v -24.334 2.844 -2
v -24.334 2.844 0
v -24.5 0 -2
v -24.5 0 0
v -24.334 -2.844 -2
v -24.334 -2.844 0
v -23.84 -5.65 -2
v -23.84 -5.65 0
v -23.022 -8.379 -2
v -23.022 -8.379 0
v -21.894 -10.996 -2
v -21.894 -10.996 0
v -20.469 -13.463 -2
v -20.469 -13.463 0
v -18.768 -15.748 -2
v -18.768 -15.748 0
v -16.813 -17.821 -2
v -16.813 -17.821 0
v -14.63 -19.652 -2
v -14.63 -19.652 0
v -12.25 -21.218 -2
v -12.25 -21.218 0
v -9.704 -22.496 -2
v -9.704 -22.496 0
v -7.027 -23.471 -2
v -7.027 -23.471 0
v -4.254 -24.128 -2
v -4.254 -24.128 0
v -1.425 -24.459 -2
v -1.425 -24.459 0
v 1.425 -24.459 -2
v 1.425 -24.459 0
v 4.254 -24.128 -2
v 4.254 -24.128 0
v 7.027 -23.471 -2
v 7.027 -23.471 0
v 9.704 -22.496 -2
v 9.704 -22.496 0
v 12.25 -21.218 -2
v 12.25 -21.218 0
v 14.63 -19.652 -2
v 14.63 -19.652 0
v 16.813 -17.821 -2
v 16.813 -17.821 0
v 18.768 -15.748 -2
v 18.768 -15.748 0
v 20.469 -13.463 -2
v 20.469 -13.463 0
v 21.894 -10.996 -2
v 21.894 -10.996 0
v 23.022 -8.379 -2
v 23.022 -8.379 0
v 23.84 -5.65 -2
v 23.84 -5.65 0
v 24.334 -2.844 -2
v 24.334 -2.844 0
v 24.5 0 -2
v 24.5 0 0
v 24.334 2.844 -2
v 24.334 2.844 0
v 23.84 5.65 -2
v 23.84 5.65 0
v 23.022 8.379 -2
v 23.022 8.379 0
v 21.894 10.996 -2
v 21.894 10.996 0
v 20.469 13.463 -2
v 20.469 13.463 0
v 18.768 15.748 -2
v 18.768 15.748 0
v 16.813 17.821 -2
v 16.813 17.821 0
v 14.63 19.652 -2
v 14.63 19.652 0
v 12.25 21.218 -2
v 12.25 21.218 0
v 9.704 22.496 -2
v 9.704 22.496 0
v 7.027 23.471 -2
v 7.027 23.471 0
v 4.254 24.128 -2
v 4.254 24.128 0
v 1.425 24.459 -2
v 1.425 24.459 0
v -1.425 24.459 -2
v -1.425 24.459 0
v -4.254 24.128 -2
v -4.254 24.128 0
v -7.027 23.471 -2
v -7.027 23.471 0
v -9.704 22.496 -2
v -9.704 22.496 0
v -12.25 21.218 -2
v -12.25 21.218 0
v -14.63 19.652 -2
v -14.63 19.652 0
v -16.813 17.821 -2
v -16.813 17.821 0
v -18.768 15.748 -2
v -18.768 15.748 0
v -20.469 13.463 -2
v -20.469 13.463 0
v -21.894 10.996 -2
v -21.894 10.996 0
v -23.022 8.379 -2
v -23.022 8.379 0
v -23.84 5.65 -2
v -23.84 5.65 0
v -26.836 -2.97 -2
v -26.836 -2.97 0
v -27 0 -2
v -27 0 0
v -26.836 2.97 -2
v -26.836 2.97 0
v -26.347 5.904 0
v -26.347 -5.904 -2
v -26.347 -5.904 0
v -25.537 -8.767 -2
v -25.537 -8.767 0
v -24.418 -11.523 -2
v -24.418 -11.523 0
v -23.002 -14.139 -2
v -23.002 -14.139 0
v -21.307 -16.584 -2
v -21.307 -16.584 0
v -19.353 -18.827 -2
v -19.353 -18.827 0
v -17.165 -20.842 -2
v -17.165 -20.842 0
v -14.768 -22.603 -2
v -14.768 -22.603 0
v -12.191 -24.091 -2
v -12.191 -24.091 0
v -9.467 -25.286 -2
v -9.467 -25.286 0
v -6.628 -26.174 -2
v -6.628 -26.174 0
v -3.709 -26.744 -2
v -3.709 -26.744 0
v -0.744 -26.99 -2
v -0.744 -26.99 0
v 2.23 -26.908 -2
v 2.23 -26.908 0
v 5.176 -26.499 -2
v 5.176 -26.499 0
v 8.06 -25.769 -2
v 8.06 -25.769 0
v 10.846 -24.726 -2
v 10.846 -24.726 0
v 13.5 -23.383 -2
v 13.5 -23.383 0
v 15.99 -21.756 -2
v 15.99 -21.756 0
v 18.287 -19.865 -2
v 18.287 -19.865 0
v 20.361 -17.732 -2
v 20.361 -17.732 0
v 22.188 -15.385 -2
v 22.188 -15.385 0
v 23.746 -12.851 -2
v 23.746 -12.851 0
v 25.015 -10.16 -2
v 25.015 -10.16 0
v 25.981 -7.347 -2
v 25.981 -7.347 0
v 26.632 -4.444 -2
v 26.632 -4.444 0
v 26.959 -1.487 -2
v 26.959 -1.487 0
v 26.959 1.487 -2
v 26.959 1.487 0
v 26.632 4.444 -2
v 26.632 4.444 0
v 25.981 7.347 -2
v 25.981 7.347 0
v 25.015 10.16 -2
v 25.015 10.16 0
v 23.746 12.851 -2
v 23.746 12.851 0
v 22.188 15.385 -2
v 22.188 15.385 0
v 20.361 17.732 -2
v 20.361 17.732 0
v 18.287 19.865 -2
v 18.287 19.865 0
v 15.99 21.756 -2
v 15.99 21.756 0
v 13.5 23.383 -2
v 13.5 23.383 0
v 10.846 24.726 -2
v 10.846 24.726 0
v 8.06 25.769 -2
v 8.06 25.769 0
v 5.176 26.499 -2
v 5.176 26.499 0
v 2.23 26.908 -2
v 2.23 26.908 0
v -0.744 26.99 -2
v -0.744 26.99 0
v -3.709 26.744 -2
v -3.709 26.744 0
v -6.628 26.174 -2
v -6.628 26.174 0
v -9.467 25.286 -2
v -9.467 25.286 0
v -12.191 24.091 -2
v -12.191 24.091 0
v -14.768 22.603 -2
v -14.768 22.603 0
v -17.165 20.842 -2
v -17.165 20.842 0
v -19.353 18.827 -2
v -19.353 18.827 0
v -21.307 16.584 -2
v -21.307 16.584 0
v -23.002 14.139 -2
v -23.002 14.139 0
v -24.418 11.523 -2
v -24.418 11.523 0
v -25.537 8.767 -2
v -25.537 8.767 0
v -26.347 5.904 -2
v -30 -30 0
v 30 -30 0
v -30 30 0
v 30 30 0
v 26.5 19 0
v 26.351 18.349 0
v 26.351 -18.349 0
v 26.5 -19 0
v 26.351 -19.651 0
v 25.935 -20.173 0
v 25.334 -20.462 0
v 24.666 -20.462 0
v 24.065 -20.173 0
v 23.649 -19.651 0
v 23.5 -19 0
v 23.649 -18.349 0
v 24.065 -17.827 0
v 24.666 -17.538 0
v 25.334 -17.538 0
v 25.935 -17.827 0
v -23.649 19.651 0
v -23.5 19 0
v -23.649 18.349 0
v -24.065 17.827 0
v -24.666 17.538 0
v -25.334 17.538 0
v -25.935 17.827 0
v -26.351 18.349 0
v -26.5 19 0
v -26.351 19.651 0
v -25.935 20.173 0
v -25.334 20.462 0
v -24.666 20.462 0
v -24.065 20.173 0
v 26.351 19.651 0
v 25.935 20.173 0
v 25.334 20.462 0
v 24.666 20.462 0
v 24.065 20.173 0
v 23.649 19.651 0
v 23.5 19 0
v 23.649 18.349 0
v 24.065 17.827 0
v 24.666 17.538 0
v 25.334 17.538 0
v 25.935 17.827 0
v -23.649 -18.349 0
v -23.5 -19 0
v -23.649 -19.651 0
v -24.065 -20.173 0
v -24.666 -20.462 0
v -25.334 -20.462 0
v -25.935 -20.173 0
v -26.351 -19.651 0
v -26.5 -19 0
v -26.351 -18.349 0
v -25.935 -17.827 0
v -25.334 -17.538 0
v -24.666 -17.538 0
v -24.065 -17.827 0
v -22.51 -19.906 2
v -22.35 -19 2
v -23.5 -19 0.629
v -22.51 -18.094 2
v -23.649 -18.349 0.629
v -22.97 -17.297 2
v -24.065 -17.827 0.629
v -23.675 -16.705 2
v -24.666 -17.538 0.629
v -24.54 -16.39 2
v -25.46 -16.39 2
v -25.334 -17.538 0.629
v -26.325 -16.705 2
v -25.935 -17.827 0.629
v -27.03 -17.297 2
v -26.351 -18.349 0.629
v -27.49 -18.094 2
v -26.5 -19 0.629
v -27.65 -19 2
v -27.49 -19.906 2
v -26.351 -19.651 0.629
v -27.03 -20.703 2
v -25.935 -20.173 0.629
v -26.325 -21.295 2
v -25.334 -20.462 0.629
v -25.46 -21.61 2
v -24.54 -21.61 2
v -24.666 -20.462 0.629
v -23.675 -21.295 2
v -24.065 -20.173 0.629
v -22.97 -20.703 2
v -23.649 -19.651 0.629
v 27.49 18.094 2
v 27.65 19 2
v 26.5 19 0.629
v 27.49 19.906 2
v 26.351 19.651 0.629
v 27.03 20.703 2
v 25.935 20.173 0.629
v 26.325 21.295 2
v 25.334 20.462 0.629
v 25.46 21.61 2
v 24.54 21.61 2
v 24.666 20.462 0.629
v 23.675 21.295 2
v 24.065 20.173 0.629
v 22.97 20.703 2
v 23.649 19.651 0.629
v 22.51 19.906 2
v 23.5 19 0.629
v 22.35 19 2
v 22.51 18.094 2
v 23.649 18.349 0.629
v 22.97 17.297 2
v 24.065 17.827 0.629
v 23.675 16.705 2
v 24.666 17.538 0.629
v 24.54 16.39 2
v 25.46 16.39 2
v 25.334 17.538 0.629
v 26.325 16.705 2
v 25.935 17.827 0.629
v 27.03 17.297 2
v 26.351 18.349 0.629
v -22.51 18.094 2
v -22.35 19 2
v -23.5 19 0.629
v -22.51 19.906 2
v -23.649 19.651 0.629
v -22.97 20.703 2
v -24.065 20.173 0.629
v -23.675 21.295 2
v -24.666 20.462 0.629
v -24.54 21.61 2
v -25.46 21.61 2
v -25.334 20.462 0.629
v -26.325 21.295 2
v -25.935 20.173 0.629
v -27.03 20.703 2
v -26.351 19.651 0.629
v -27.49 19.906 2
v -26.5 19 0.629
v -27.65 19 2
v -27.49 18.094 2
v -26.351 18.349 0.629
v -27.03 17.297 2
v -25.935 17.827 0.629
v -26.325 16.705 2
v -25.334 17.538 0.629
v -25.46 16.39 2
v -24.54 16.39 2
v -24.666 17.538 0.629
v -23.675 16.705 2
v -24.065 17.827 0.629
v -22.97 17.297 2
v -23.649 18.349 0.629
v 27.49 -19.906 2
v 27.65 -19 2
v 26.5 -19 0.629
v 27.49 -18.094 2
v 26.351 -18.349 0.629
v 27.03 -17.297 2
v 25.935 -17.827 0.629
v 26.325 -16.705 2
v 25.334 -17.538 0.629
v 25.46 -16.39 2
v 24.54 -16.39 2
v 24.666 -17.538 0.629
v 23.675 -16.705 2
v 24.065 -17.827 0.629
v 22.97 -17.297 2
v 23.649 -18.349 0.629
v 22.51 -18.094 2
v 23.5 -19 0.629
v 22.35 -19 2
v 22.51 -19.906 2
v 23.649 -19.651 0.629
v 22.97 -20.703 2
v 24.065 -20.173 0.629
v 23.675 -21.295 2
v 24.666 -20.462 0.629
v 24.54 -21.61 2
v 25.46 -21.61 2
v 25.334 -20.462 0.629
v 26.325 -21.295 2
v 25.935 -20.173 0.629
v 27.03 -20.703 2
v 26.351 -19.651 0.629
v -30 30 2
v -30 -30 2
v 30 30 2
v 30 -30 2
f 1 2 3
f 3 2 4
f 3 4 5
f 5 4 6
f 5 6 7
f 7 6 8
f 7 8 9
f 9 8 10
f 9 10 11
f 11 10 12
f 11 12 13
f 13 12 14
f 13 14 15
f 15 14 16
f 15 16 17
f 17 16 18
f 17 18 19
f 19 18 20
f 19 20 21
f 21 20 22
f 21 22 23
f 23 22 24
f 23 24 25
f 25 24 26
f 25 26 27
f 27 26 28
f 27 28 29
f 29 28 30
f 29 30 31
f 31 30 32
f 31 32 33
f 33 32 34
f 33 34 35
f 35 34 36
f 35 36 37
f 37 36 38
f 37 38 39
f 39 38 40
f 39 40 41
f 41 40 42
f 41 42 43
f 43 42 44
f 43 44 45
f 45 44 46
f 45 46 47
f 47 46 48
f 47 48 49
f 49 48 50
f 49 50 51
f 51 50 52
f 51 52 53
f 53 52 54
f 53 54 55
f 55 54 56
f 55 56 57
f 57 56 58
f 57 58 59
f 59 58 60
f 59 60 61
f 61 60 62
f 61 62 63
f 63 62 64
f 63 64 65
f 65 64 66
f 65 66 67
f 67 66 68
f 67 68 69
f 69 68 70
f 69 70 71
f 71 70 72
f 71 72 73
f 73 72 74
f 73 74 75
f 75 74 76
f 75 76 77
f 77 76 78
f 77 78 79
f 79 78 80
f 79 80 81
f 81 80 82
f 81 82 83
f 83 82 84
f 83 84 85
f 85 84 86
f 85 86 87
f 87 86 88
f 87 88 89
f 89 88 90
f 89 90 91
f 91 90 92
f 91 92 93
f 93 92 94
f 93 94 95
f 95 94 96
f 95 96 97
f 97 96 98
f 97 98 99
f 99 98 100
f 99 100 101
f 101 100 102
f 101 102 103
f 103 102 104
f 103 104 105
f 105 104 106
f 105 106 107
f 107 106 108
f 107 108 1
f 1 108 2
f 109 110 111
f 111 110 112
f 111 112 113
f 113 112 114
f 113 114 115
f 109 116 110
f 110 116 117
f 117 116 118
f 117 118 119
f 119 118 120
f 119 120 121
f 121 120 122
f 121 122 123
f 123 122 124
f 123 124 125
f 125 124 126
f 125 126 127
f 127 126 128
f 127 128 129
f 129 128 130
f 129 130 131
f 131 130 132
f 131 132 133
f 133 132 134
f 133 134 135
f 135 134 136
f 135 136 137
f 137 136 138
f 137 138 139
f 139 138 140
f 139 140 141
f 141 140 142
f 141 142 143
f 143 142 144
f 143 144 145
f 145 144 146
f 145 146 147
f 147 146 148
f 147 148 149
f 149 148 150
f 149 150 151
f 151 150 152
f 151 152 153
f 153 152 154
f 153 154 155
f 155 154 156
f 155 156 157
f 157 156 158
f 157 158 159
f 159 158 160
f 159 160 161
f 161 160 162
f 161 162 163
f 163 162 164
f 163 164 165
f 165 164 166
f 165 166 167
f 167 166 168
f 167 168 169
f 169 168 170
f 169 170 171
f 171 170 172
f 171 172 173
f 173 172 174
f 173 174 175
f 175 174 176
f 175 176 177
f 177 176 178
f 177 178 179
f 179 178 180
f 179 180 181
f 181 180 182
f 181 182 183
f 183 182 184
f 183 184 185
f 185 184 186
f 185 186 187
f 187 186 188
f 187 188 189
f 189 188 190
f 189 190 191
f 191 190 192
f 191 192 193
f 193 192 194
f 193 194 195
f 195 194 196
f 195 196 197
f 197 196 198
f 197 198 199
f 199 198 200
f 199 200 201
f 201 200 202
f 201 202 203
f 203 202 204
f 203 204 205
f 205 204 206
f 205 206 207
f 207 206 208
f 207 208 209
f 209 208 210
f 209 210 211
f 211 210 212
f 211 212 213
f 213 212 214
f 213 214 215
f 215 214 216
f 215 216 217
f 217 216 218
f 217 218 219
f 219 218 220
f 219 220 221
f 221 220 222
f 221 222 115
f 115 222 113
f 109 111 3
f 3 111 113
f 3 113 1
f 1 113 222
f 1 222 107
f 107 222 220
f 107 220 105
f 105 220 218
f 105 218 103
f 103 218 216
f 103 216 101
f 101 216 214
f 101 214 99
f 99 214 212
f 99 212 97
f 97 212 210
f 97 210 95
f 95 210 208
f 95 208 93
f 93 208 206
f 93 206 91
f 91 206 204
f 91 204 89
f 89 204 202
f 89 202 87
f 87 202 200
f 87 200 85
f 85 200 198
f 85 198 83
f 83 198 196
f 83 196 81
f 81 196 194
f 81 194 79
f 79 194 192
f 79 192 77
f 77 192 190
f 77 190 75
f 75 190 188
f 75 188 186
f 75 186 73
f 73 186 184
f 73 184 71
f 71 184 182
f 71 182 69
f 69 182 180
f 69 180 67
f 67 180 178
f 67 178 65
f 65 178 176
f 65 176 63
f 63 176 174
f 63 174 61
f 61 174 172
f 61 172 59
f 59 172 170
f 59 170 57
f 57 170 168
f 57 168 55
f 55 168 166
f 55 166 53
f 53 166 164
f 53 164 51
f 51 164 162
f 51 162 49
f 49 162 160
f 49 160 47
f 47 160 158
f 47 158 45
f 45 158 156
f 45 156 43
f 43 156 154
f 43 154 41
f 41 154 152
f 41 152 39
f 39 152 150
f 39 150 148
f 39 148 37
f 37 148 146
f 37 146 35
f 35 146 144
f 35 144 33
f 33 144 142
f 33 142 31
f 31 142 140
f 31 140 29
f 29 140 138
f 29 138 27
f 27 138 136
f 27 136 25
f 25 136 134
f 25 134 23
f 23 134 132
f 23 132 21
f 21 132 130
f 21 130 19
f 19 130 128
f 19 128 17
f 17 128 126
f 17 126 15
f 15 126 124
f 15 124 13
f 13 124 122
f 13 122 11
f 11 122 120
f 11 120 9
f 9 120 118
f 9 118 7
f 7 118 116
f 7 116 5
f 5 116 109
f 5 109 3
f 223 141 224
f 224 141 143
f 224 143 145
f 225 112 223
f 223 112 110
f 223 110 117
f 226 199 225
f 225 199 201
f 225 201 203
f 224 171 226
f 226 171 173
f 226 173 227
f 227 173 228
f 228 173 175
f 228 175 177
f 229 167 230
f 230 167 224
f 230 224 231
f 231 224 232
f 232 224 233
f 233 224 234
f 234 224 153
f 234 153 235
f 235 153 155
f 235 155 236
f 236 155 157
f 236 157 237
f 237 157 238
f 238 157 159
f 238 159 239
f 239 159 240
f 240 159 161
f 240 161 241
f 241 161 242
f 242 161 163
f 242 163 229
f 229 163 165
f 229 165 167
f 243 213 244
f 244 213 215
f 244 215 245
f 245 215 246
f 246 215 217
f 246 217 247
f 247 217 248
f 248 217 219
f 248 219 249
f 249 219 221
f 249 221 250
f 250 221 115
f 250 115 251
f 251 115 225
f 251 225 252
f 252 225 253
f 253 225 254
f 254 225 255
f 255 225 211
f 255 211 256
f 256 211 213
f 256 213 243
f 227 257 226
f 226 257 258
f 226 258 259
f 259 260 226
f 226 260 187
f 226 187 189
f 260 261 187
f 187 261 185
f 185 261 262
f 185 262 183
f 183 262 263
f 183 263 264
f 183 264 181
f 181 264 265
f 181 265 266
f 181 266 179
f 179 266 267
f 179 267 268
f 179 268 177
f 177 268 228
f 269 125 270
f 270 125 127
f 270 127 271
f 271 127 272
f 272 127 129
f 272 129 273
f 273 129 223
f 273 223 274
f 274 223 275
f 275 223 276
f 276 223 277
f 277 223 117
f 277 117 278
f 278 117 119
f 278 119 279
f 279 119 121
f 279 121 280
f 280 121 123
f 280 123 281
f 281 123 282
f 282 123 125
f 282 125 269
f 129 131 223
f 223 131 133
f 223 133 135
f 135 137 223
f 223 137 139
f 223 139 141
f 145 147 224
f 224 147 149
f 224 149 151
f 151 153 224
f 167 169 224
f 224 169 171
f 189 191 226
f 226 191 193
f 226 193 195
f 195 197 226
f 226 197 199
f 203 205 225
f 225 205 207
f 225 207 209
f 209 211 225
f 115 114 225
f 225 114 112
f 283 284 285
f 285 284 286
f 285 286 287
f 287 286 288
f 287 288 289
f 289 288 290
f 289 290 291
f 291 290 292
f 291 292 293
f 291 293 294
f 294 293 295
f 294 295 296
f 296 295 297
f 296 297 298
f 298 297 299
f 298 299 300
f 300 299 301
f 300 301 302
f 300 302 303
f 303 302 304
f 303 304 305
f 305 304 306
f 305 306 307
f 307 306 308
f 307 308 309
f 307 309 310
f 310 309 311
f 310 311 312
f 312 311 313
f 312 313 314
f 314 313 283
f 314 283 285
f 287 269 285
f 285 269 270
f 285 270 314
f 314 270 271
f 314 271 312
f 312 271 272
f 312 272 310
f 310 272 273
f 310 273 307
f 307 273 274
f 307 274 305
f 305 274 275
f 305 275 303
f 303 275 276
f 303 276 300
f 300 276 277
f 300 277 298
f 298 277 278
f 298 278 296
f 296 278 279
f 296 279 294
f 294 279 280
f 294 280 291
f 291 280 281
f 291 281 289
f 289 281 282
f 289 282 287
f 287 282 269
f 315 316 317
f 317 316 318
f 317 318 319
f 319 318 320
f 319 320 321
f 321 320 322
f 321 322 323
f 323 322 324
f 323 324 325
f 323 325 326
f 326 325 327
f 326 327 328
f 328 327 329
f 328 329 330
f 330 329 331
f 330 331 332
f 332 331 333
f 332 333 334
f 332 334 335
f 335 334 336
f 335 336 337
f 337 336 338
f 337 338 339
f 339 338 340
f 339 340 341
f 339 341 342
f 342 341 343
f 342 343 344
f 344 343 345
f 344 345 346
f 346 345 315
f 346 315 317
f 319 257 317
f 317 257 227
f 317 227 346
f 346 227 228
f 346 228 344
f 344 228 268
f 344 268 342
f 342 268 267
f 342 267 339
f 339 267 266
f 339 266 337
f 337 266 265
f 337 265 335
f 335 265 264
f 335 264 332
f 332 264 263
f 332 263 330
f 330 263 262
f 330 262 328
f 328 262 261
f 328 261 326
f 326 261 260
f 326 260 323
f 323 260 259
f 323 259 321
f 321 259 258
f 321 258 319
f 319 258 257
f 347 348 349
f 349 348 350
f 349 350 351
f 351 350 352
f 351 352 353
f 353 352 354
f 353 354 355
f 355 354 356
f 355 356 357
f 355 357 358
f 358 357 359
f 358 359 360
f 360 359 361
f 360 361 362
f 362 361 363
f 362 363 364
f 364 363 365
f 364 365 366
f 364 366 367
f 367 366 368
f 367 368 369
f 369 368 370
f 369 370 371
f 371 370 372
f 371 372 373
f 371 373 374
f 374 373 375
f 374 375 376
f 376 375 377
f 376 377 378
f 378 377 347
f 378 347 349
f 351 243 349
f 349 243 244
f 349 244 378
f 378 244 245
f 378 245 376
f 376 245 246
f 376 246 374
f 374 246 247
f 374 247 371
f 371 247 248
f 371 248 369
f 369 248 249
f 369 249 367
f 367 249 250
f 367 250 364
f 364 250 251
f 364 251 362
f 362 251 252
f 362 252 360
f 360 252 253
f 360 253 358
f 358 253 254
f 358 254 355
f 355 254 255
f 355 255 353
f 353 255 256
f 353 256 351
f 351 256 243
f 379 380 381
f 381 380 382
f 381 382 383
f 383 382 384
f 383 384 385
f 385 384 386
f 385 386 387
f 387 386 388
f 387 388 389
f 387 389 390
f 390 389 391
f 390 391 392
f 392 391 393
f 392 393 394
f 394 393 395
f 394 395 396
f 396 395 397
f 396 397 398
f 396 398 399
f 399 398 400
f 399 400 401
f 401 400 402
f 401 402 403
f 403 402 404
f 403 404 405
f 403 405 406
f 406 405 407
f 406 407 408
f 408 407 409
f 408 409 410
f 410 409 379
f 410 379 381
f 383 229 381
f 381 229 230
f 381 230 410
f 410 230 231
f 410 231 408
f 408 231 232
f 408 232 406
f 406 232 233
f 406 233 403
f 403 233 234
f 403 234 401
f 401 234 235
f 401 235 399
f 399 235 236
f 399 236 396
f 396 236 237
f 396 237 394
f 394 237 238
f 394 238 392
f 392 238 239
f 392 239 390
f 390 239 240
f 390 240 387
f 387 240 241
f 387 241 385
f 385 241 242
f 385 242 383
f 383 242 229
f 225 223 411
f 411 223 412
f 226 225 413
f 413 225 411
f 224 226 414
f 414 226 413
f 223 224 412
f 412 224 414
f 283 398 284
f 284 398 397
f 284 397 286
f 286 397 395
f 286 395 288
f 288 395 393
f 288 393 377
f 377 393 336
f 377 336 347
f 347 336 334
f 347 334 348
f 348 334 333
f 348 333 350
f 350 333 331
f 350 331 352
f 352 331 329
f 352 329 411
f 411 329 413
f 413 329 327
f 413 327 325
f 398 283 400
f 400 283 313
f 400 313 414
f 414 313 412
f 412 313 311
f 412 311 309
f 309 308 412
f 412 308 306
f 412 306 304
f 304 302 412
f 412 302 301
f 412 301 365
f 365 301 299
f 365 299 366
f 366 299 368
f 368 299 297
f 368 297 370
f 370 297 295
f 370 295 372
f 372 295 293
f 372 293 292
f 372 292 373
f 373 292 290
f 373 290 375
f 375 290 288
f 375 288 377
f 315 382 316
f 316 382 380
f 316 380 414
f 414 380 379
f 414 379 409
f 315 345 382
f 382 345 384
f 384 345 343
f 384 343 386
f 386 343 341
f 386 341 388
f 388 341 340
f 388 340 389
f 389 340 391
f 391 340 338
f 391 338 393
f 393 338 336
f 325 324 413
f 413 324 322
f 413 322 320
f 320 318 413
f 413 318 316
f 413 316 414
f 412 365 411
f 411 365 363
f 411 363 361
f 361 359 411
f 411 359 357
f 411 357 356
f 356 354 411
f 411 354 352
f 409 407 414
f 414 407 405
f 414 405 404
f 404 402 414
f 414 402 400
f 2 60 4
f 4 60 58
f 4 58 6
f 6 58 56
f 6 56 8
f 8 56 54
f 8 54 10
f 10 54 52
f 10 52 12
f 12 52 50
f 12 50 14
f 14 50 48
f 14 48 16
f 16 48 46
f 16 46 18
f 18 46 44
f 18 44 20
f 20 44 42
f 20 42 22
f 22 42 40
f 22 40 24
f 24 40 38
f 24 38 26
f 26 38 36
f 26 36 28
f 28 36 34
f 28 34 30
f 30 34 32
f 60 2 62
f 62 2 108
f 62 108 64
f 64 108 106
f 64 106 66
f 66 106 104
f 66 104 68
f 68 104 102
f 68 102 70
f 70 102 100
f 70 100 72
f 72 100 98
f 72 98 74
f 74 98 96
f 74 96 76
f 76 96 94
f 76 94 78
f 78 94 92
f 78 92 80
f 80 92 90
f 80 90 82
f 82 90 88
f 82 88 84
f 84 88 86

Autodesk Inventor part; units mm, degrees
ref_plane "YZ Plane" through (0, 0, 0) normal (1, 0, 0) x (0, 1, 0)
ref_plane "XZ Plane" through (0, 0, 0) normal (0, 1, 0) x (-1, 0, 0)
ref_plane "XY Plane" through (0, 0, 0) normal (0, 0, 1) x (1, 0, 0)
sketch "Boceto1" plane through (0, 0, 0) normal (0, 0, 1) x (1, 0, 0)
  line L0 (-30, 30) -> (30, 30)
  line L1 (30, 30) -> (30, -30)
  line L2 (30, -30) -> (-30, -30)
  line L3 (-30, -30) -> (-30, 30)
  line L4 (-30, 30) -> (30, -30) construction
  line L5 (30, 30) -> (-30, -30) construction
  point P0 (0, 0)
  dimension "d0" = 60
  dimension "d1" = 60
extrude "Extrusión1" add sketch "Boceto1" along normal blind 2
sketch "Boceto2" plane through (0, 0, 2) normal (0, 0, 1) x (1, 0, 0)
  circle A0 centre (-25, 19) radius 2.2 projected
  circle A1 centre (-25, -19) radius 2.2 projected
  circle A2 centre (25, -19) radius 2.2 projected
  circle A3 centre (25, 19) radius 2.2 projected
  point P0 (0, 0)
hole "Agujero1" at (25, 19, 2) at (-25, 19, 2) at (-25, -19, 2) at (25, -19, 2) direction (0, 0, -1) diameter 3 depth 2 countersink diameter 5.3 countersink angle 80
sketch "Boceto3" plane through (0, 0, 0) normal (0, 0, -1) x (-1, 0, 0)
  circle A0 centre (0, 0) radius 24.5 projected
  circle A1 centre (0, 0) radius 27
  circle A2 centre (0, 0) radius 24.5
  circle A3 centre (0, 0) radius 27.5 projected
  circle A4 centre (0, 0) radius 27.5 projected
  point P0 (12.49, 24.5)
  point P1 (12.49, -24.5)
  dimension "d13" = 54
extrude "Extrusión2" add sketch "Boceto3" along normal blind 2 contours A1
properties part number "Tapa"
